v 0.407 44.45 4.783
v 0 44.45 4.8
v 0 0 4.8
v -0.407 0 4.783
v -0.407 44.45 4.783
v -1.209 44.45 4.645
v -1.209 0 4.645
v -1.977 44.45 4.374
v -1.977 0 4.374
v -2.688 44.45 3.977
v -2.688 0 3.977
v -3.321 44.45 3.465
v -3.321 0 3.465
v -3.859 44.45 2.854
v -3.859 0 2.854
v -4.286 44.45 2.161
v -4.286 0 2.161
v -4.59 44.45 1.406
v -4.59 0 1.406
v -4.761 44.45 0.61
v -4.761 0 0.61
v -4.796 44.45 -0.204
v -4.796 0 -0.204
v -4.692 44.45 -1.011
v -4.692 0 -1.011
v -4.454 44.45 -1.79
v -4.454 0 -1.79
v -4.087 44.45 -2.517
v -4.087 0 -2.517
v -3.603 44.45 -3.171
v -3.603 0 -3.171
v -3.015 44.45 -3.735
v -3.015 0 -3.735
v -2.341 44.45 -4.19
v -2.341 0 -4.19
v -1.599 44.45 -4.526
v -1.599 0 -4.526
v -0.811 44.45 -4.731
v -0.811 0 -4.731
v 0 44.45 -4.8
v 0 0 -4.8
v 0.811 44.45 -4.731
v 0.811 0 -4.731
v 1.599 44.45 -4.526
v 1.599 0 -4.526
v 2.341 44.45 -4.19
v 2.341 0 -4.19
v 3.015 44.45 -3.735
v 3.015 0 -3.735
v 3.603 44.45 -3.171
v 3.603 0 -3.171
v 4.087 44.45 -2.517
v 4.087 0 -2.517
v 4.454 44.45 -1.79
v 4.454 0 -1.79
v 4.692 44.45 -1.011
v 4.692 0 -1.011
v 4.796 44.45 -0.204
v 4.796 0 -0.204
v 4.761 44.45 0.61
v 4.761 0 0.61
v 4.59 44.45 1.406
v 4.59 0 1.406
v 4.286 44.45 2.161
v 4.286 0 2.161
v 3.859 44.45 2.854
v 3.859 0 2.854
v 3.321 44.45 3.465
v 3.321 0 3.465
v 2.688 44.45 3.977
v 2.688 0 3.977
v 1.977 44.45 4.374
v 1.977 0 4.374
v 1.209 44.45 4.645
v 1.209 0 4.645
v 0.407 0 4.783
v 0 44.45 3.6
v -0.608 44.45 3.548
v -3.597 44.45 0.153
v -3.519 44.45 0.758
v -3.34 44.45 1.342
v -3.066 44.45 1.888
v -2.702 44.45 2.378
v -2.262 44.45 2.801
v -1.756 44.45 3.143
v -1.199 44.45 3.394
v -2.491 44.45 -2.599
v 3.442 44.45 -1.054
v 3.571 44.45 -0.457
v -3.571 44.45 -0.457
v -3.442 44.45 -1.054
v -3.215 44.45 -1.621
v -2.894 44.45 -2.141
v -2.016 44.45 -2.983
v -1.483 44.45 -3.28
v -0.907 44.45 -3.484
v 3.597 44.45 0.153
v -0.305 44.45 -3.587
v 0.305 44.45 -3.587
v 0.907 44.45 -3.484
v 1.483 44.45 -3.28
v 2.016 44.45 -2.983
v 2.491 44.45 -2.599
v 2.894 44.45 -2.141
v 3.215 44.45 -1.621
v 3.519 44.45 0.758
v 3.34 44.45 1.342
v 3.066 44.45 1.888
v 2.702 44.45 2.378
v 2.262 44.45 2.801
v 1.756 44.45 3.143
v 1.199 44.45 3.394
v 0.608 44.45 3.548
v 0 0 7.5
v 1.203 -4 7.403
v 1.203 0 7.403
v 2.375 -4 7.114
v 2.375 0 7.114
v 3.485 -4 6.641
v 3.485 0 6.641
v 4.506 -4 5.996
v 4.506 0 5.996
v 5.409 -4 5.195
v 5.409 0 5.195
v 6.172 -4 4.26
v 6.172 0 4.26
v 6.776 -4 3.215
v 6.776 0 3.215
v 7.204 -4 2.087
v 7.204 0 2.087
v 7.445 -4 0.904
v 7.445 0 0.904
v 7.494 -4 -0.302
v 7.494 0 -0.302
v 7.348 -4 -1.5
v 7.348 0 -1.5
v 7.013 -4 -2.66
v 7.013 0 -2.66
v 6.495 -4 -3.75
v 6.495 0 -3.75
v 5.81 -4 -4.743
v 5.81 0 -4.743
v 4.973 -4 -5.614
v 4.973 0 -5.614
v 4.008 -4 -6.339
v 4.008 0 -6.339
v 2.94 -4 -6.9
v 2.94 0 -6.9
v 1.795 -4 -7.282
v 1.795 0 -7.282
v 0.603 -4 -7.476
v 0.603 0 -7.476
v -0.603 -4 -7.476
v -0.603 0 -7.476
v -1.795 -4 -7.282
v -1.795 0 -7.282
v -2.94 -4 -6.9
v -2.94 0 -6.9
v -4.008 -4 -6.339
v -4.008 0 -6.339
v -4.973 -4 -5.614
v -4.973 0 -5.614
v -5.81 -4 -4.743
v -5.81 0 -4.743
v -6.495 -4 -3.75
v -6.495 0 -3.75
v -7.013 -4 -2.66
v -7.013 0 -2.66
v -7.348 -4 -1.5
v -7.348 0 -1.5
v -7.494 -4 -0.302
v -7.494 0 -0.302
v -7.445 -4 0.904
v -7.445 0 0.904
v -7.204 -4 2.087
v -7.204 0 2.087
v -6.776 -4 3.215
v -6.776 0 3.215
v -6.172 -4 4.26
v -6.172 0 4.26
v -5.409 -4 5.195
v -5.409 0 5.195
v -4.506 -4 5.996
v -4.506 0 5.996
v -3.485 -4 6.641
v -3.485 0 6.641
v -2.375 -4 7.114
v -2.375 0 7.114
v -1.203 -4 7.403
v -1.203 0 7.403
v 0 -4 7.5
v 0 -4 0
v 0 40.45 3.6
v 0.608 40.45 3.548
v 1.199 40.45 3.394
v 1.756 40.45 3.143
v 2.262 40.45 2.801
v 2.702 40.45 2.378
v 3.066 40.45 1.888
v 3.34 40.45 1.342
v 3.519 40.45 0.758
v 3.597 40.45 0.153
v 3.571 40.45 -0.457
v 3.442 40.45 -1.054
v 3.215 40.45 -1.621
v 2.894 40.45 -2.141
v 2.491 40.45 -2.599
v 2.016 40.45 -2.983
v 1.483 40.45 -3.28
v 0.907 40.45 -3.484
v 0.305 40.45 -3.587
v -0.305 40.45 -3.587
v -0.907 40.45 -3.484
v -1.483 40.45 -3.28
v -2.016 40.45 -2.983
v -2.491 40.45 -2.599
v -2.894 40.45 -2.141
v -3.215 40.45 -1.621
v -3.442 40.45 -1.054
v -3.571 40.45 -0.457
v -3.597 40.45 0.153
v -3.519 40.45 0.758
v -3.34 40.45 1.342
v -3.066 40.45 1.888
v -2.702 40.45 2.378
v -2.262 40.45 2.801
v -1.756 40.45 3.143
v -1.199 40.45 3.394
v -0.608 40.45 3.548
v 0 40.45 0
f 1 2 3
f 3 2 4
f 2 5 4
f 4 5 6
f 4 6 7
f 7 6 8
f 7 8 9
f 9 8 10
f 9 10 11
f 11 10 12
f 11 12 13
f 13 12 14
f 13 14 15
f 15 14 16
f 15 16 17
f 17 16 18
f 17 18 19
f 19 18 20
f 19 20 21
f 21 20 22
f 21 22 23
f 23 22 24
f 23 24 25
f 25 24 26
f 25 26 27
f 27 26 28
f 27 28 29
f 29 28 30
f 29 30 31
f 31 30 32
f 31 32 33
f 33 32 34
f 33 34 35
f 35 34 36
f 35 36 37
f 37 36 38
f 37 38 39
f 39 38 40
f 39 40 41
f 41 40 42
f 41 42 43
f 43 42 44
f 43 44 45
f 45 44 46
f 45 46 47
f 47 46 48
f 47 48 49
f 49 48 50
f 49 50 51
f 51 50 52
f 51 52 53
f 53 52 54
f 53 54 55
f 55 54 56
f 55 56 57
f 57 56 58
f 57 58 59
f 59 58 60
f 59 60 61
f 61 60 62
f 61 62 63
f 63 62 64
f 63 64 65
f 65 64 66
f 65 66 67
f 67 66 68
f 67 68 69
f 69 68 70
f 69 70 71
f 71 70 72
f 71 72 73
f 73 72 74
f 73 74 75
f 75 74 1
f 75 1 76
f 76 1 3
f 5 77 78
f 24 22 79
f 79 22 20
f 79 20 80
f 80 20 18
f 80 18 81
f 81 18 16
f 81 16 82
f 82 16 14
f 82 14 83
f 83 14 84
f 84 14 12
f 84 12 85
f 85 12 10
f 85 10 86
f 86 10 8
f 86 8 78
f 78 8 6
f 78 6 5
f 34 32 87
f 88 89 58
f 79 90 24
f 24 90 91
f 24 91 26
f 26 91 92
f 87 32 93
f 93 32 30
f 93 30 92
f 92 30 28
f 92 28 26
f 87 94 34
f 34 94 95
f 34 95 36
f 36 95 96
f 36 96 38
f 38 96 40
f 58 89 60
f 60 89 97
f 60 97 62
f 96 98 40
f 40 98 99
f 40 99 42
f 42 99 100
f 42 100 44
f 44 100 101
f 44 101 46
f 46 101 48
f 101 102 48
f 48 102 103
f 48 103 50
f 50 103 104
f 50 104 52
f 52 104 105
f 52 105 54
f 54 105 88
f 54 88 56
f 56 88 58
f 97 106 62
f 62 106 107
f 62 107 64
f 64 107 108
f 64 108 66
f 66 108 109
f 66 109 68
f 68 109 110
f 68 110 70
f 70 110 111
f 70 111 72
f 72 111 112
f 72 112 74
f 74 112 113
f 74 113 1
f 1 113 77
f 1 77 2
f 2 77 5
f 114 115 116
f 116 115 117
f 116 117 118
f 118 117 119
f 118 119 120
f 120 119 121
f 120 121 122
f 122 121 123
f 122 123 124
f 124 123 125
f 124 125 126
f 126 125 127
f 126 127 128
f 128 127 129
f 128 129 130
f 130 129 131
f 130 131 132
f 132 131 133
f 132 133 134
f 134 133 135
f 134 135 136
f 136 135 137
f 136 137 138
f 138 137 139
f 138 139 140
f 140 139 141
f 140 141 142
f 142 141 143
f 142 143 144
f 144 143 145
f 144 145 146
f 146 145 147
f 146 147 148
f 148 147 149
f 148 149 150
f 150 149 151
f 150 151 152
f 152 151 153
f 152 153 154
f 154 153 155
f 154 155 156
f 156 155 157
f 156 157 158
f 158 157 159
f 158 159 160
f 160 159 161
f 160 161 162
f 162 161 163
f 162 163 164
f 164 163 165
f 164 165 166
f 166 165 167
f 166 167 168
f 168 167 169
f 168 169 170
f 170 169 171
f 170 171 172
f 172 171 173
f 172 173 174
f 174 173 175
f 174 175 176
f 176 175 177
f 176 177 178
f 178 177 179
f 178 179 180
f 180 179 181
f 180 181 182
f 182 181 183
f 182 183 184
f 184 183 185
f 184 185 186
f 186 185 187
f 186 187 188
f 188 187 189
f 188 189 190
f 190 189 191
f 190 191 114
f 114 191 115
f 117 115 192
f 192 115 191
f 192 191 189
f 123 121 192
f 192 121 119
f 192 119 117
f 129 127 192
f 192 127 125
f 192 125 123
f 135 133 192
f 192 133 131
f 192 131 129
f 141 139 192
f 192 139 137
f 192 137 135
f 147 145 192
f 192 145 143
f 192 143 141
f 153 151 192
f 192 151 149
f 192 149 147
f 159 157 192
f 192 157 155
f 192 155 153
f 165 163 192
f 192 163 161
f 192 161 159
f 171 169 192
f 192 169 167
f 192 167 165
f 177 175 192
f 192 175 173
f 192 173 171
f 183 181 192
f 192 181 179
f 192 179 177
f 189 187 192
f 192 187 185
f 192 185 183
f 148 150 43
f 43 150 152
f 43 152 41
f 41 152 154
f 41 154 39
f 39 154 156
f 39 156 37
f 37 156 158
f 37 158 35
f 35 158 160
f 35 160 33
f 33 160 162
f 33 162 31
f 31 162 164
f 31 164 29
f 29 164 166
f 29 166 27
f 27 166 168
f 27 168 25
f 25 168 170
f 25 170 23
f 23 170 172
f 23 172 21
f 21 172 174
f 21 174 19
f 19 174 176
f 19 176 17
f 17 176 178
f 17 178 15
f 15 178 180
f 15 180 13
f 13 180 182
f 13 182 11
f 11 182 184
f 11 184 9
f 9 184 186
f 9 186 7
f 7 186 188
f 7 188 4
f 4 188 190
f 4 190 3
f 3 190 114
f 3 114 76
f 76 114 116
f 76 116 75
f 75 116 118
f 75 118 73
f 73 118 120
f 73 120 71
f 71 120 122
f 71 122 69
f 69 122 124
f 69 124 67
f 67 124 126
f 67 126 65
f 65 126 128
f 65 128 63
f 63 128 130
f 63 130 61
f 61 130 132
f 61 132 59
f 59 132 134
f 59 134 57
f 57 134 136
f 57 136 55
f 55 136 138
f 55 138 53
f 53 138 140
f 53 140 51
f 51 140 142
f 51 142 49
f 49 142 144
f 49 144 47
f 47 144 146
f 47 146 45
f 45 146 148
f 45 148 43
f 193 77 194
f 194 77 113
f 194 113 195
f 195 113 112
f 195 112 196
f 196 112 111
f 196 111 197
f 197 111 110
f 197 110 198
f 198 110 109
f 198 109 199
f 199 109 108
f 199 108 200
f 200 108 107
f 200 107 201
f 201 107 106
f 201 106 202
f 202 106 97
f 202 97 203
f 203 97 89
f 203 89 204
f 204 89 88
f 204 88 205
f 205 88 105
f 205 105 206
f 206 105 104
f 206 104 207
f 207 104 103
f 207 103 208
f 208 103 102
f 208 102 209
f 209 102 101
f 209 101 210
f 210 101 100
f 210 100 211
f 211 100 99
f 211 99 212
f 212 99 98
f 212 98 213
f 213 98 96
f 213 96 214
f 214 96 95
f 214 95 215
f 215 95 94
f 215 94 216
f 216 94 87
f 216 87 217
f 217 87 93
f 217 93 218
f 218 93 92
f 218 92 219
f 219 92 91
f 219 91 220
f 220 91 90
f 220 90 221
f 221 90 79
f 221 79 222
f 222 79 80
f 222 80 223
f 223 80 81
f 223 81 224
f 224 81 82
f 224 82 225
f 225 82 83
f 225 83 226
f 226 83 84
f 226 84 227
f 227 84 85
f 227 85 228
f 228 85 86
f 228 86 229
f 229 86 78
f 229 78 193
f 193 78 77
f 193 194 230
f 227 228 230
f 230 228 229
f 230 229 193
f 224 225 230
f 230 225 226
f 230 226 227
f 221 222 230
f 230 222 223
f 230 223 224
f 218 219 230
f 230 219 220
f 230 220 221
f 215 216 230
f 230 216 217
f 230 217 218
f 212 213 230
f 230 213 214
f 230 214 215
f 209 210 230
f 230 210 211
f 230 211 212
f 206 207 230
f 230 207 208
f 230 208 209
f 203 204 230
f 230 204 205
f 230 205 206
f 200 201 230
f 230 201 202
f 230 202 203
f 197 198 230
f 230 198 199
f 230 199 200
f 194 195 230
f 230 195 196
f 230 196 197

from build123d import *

# Parameters (mm, degrees)
SKETCH1_R           = 4.8
BOSS_EXTRUDE1_DEPTH = 44.45
SKETCH1_4_R         = 7.5
BOSS_EXTRUDE2_DEPTH = 4
SKETCH2_R           = 3.6
CUT_EXTRUDE1_DEPTH  = 4


with BuildPart() as part:
    # Sketch1 → Boss-Extrude1 (new body)
    with BuildSketch(Plane(origin=(0, 0, 0), x_dir=(1, 0, 0), z_dir=(0, 1, 0))):
        Circle(SKETCH1_R)
    extrude(amount=BOSS_EXTRUDE1_DEPTH)

    # Sketch1<4> → Boss-Extrude2 (add)
    with BuildSketch(Plane(origin=(0, 0, 0), x_dir=(1, 0, 0), z_dir=(0, 1, 0))):
        Circle(SKETCH1_4_R)
    extrude(amount=-BOSS_EXTRUDE2_DEPTH)

    # Sketch2 → Cut-Extrude1 (cut)
    with BuildSketch(Plane(origin=(0, 44.45, 0), x_dir=(1, 0, 0), z_dir=(0, 1, 0))):
        Circle(SKETCH2_R)
    extrude(amount=-CUT_EXTRUDE1_DEPTH, mode=Mode.SUBTRACT)


solid = part.part
